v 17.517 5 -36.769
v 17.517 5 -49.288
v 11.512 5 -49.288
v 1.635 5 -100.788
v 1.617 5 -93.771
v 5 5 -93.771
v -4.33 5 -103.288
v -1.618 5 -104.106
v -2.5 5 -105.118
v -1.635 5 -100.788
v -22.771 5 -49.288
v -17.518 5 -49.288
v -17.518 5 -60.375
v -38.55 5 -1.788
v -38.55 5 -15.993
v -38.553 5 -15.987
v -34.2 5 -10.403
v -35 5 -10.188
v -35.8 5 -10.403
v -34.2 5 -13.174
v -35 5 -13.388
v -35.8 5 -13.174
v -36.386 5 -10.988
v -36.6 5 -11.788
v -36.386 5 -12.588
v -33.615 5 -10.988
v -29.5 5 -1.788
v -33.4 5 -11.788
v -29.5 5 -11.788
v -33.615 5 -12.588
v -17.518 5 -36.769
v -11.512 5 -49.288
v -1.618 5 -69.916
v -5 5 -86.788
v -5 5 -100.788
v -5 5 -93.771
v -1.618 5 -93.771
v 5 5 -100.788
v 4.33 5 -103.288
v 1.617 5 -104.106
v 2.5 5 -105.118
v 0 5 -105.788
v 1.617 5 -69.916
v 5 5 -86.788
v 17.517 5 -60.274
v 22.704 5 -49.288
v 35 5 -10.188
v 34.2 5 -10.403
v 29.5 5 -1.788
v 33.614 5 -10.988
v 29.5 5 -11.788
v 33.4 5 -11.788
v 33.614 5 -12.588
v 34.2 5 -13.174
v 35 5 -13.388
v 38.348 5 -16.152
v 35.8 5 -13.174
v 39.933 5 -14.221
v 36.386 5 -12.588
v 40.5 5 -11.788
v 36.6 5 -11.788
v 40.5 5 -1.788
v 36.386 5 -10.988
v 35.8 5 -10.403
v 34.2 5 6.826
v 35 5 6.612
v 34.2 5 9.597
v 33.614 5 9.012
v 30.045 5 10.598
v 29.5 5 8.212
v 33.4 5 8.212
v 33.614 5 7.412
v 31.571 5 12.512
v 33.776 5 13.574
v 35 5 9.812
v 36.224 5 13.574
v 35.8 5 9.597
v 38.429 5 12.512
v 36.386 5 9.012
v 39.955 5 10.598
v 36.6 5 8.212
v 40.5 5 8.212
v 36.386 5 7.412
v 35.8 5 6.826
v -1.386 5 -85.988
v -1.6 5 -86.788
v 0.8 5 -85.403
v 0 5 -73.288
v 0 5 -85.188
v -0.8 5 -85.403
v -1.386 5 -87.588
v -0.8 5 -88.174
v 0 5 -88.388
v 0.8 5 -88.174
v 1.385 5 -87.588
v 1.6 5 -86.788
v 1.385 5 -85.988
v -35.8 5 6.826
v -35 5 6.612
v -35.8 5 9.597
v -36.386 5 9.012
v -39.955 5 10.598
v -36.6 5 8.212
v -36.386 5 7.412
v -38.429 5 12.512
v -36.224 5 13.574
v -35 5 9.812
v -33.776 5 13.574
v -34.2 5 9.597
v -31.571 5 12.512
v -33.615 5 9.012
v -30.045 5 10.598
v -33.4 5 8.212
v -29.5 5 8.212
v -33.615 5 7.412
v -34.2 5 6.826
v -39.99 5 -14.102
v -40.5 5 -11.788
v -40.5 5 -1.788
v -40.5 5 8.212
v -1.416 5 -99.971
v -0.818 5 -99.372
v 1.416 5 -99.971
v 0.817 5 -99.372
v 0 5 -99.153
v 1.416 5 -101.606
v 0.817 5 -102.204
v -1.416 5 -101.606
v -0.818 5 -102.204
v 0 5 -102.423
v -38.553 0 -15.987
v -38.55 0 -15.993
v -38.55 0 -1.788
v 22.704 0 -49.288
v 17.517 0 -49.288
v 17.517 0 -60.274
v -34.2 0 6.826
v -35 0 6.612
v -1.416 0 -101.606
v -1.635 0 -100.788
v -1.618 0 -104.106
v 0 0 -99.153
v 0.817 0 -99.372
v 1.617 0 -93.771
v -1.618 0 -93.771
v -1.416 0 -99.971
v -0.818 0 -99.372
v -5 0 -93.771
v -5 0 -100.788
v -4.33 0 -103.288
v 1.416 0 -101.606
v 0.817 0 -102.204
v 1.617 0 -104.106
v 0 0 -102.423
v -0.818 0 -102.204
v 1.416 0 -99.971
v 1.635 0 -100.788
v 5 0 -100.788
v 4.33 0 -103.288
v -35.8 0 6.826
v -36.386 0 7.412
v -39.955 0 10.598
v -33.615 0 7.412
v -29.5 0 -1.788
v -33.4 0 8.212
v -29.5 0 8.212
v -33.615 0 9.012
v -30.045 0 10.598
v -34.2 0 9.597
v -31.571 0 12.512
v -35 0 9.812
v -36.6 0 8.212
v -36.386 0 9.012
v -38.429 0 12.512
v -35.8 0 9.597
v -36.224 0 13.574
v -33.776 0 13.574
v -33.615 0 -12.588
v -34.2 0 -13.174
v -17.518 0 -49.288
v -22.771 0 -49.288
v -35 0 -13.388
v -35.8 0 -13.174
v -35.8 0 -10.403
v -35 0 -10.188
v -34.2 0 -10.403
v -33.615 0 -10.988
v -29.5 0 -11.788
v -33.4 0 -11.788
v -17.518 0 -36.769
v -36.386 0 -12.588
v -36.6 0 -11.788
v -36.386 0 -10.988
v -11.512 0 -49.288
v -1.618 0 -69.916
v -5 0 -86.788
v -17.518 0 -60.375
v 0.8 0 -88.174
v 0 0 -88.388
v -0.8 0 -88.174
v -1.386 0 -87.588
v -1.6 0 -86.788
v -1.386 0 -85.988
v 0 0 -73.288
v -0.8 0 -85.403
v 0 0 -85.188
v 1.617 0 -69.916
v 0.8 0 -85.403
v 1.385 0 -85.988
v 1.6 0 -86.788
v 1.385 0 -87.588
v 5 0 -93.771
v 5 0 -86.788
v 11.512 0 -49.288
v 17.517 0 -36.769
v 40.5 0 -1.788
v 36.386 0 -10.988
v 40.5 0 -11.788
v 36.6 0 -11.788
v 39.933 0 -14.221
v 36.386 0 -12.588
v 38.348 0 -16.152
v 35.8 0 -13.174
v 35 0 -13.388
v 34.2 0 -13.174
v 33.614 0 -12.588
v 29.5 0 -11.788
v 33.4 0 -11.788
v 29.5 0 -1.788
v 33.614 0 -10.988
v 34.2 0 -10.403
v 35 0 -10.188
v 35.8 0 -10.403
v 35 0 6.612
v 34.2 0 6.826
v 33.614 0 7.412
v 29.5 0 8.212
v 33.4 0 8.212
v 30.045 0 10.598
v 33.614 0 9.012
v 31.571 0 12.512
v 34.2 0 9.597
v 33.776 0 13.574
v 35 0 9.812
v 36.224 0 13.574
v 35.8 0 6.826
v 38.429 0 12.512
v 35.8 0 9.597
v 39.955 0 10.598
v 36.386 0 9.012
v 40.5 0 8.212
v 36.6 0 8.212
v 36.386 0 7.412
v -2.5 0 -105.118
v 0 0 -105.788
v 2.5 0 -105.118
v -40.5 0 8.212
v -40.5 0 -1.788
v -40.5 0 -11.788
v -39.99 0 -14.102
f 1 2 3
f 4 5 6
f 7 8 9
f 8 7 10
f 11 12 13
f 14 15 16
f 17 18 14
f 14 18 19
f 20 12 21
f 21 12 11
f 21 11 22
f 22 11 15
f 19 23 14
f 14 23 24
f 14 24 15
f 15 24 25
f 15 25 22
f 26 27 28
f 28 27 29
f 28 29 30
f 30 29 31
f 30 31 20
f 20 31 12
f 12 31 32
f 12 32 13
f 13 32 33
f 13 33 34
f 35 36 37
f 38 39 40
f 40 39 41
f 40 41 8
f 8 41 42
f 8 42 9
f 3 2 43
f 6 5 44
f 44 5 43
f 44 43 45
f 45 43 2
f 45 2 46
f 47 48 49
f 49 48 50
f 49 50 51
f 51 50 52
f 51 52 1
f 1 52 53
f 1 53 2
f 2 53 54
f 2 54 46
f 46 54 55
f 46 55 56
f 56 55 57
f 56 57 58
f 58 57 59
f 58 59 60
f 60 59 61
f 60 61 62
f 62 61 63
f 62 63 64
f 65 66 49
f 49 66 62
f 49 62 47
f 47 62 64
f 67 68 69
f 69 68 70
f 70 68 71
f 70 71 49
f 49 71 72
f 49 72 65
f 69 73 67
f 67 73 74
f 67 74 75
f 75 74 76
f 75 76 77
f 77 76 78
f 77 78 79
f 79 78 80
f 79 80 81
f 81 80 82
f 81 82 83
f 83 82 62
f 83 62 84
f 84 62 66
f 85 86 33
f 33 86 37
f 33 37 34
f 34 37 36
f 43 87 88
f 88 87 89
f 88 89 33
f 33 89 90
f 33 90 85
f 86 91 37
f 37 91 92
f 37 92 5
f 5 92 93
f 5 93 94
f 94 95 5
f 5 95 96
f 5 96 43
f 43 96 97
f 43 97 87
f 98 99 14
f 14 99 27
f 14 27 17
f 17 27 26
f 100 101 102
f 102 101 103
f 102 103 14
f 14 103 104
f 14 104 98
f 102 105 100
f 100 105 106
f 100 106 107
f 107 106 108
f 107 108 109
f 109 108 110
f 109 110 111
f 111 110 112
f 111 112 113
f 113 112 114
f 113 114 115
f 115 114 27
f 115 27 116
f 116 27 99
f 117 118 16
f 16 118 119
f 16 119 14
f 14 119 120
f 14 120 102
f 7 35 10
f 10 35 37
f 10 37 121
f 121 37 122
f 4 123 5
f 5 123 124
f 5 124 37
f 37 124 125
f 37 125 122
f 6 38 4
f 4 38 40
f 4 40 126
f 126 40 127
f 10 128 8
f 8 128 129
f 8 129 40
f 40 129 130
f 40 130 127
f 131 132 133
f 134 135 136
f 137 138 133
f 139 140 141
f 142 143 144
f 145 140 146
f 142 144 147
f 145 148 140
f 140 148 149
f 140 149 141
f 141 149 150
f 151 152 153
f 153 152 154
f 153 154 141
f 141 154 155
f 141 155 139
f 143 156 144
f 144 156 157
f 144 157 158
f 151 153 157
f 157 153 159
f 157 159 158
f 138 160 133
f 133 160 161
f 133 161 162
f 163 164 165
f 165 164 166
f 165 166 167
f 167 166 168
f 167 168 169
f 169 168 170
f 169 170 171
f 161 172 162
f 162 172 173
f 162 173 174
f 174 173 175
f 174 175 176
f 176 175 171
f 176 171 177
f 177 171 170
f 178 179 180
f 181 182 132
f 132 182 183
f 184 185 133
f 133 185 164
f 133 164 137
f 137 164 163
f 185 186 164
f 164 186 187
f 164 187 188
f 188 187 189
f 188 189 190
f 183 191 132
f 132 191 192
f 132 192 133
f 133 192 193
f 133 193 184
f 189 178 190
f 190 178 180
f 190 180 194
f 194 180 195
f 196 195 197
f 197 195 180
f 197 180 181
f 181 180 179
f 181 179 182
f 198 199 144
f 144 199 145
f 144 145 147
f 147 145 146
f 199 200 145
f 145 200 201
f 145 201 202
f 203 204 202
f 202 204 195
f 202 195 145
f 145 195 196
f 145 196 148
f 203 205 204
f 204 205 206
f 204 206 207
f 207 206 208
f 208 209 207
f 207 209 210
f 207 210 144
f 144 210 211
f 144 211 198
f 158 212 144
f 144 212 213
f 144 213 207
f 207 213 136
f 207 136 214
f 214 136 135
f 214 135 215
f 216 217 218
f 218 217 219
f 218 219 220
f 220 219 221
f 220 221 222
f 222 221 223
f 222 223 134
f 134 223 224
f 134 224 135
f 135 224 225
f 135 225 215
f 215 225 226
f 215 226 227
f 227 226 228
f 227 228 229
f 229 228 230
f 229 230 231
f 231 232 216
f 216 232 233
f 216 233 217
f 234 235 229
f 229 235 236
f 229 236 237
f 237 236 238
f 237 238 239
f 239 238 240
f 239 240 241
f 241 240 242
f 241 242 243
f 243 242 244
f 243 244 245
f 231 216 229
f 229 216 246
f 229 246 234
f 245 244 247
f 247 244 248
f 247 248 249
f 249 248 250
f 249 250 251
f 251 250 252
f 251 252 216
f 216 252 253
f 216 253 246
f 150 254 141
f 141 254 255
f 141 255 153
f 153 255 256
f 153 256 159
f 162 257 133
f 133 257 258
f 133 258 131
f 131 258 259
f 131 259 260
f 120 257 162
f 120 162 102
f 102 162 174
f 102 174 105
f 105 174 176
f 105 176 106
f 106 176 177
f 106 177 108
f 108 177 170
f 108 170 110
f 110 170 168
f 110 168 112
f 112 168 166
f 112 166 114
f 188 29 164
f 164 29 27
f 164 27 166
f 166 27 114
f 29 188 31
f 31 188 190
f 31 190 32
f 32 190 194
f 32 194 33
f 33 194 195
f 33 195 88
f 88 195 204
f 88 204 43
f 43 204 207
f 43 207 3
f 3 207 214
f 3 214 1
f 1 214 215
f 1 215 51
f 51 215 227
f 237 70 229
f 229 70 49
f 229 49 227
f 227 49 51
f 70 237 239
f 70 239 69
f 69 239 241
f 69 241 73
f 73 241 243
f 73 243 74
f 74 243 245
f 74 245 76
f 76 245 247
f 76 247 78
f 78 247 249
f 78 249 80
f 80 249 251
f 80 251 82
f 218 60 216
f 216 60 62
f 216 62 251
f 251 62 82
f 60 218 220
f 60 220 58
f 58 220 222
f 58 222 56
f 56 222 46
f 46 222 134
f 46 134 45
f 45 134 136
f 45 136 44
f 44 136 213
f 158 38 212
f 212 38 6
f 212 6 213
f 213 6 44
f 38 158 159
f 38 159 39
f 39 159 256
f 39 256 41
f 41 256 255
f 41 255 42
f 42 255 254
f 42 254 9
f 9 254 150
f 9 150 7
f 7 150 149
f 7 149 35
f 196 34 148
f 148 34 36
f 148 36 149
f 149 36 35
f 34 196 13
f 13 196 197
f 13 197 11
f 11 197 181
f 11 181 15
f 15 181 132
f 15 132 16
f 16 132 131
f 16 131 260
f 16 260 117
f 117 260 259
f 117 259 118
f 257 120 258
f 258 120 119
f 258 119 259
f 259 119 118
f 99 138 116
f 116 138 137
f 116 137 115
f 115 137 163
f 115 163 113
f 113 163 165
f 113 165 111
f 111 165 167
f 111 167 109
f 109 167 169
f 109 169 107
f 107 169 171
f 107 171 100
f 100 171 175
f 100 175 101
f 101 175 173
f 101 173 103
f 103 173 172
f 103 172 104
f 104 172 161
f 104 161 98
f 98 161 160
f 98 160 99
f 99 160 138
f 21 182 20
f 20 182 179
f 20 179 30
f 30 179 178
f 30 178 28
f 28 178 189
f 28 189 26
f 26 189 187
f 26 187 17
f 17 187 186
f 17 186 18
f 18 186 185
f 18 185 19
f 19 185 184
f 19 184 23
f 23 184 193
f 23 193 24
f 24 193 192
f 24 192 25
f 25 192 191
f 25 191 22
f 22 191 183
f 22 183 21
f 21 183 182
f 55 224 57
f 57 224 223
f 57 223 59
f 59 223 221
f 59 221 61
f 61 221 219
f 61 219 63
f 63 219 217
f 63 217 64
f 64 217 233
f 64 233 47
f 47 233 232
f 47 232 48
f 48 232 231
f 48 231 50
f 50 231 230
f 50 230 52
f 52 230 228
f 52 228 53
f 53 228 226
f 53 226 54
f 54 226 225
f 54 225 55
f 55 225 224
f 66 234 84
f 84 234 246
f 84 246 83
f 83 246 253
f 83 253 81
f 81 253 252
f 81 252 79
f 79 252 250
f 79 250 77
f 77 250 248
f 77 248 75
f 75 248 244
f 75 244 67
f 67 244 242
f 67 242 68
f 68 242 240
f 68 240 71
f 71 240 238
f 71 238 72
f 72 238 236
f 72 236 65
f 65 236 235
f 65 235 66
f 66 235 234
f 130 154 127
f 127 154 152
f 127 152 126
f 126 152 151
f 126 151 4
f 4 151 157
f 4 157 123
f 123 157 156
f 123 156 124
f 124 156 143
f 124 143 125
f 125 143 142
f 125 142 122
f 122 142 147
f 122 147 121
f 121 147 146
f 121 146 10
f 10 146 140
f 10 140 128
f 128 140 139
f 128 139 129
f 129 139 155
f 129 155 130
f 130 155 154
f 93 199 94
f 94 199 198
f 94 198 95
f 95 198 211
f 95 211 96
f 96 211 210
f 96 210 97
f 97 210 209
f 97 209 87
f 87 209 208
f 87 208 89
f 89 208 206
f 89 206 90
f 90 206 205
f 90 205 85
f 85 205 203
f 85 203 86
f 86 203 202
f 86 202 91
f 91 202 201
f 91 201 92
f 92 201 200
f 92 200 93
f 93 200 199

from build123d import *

# Parameters (mm, degrees)
SKETCH_1_R      = 1.6
SKETCH_1_R_2    = 1.634753067
EXTRUDE_1_DEPTH = 5


with BuildPart() as part:
    # 草图1 → 凸台-拉伸1 (new body)
    with BuildSketch(Plane(origin=(0, 0, 0), x_dir=(1, 0, 0), z_dir=(0, 1, 0))):
        with BuildLine():
            Line((-29.5, 11.78850637), (-29.5, -8.21149363))
            ThreePointArc((-29.5, -8.21149363), (-35, -13.71149363), (-40.5, -8.21149363))
            Line((-40.5, -8.21149363), (-40.5, 11.78850637))
            ThreePointArc((-40.5, 11.78850637), (-39.989553993, 14.102453419), (-38.552963292, 15.986893184))
            Line((-38.552963292, 15.986893184), (-5, 86.78850637))
            Line((-5, 86.78850637), (-5, 100.78850637))
            ThreePointArc((-5, 100.78850637), (0, 105.78850637), (5, 100.78850637))
            Line((5, 100.78850637), (5, 86.78850637))
            Line((5, 86.78850637), (38.348099221, 16.152017755))
            ThreePointArc((38.348099221, 16.152017755), (39.932775371, 14.221144268), (40.5, 11.78850637))
            Line((40.5, 11.78850637), (40.5, -8.21149363))
            ThreePointArc((40.5, -8.21149363), (35, -13.71149363), (29.5, -8.21149363))
            Line((29.5, -8.21149363), (29.5, 11.78850637))
            Line((29.5, 11.78850637), (0, 73.28850637))
            Line((0, 73.28850637), (-29.5, 11.78850637))
        make_face()
        with Locations((-35, -8.21149363)):
            Circle(SKETCH_1_R, mode=Mode.SUBTRACT)
        with Locations((-35, 11.78850637)):
            Circle(SKETCH_1_R, mode=Mode.SUBTRACT)
        with Locations((35, 11.78850637)):
            Circle(SKETCH_1_R, mode=Mode.SUBTRACT)
        with Locations((35, -8.21149363)):
            Circle(SKETCH_1_R, mode=Mode.SUBTRACT)
        with Locations((0, 100.78850637)):
            Circle(SKETCH_1_R_2, mode=Mode.SUBTRACT)
        with Locations((0, 86.78850637)):
            Circle(SKETCH_1_R, mode=Mode.SUBTRACT)
    extrude(amount=EXTRUDE_1_DEPTH)


solid = part.part
